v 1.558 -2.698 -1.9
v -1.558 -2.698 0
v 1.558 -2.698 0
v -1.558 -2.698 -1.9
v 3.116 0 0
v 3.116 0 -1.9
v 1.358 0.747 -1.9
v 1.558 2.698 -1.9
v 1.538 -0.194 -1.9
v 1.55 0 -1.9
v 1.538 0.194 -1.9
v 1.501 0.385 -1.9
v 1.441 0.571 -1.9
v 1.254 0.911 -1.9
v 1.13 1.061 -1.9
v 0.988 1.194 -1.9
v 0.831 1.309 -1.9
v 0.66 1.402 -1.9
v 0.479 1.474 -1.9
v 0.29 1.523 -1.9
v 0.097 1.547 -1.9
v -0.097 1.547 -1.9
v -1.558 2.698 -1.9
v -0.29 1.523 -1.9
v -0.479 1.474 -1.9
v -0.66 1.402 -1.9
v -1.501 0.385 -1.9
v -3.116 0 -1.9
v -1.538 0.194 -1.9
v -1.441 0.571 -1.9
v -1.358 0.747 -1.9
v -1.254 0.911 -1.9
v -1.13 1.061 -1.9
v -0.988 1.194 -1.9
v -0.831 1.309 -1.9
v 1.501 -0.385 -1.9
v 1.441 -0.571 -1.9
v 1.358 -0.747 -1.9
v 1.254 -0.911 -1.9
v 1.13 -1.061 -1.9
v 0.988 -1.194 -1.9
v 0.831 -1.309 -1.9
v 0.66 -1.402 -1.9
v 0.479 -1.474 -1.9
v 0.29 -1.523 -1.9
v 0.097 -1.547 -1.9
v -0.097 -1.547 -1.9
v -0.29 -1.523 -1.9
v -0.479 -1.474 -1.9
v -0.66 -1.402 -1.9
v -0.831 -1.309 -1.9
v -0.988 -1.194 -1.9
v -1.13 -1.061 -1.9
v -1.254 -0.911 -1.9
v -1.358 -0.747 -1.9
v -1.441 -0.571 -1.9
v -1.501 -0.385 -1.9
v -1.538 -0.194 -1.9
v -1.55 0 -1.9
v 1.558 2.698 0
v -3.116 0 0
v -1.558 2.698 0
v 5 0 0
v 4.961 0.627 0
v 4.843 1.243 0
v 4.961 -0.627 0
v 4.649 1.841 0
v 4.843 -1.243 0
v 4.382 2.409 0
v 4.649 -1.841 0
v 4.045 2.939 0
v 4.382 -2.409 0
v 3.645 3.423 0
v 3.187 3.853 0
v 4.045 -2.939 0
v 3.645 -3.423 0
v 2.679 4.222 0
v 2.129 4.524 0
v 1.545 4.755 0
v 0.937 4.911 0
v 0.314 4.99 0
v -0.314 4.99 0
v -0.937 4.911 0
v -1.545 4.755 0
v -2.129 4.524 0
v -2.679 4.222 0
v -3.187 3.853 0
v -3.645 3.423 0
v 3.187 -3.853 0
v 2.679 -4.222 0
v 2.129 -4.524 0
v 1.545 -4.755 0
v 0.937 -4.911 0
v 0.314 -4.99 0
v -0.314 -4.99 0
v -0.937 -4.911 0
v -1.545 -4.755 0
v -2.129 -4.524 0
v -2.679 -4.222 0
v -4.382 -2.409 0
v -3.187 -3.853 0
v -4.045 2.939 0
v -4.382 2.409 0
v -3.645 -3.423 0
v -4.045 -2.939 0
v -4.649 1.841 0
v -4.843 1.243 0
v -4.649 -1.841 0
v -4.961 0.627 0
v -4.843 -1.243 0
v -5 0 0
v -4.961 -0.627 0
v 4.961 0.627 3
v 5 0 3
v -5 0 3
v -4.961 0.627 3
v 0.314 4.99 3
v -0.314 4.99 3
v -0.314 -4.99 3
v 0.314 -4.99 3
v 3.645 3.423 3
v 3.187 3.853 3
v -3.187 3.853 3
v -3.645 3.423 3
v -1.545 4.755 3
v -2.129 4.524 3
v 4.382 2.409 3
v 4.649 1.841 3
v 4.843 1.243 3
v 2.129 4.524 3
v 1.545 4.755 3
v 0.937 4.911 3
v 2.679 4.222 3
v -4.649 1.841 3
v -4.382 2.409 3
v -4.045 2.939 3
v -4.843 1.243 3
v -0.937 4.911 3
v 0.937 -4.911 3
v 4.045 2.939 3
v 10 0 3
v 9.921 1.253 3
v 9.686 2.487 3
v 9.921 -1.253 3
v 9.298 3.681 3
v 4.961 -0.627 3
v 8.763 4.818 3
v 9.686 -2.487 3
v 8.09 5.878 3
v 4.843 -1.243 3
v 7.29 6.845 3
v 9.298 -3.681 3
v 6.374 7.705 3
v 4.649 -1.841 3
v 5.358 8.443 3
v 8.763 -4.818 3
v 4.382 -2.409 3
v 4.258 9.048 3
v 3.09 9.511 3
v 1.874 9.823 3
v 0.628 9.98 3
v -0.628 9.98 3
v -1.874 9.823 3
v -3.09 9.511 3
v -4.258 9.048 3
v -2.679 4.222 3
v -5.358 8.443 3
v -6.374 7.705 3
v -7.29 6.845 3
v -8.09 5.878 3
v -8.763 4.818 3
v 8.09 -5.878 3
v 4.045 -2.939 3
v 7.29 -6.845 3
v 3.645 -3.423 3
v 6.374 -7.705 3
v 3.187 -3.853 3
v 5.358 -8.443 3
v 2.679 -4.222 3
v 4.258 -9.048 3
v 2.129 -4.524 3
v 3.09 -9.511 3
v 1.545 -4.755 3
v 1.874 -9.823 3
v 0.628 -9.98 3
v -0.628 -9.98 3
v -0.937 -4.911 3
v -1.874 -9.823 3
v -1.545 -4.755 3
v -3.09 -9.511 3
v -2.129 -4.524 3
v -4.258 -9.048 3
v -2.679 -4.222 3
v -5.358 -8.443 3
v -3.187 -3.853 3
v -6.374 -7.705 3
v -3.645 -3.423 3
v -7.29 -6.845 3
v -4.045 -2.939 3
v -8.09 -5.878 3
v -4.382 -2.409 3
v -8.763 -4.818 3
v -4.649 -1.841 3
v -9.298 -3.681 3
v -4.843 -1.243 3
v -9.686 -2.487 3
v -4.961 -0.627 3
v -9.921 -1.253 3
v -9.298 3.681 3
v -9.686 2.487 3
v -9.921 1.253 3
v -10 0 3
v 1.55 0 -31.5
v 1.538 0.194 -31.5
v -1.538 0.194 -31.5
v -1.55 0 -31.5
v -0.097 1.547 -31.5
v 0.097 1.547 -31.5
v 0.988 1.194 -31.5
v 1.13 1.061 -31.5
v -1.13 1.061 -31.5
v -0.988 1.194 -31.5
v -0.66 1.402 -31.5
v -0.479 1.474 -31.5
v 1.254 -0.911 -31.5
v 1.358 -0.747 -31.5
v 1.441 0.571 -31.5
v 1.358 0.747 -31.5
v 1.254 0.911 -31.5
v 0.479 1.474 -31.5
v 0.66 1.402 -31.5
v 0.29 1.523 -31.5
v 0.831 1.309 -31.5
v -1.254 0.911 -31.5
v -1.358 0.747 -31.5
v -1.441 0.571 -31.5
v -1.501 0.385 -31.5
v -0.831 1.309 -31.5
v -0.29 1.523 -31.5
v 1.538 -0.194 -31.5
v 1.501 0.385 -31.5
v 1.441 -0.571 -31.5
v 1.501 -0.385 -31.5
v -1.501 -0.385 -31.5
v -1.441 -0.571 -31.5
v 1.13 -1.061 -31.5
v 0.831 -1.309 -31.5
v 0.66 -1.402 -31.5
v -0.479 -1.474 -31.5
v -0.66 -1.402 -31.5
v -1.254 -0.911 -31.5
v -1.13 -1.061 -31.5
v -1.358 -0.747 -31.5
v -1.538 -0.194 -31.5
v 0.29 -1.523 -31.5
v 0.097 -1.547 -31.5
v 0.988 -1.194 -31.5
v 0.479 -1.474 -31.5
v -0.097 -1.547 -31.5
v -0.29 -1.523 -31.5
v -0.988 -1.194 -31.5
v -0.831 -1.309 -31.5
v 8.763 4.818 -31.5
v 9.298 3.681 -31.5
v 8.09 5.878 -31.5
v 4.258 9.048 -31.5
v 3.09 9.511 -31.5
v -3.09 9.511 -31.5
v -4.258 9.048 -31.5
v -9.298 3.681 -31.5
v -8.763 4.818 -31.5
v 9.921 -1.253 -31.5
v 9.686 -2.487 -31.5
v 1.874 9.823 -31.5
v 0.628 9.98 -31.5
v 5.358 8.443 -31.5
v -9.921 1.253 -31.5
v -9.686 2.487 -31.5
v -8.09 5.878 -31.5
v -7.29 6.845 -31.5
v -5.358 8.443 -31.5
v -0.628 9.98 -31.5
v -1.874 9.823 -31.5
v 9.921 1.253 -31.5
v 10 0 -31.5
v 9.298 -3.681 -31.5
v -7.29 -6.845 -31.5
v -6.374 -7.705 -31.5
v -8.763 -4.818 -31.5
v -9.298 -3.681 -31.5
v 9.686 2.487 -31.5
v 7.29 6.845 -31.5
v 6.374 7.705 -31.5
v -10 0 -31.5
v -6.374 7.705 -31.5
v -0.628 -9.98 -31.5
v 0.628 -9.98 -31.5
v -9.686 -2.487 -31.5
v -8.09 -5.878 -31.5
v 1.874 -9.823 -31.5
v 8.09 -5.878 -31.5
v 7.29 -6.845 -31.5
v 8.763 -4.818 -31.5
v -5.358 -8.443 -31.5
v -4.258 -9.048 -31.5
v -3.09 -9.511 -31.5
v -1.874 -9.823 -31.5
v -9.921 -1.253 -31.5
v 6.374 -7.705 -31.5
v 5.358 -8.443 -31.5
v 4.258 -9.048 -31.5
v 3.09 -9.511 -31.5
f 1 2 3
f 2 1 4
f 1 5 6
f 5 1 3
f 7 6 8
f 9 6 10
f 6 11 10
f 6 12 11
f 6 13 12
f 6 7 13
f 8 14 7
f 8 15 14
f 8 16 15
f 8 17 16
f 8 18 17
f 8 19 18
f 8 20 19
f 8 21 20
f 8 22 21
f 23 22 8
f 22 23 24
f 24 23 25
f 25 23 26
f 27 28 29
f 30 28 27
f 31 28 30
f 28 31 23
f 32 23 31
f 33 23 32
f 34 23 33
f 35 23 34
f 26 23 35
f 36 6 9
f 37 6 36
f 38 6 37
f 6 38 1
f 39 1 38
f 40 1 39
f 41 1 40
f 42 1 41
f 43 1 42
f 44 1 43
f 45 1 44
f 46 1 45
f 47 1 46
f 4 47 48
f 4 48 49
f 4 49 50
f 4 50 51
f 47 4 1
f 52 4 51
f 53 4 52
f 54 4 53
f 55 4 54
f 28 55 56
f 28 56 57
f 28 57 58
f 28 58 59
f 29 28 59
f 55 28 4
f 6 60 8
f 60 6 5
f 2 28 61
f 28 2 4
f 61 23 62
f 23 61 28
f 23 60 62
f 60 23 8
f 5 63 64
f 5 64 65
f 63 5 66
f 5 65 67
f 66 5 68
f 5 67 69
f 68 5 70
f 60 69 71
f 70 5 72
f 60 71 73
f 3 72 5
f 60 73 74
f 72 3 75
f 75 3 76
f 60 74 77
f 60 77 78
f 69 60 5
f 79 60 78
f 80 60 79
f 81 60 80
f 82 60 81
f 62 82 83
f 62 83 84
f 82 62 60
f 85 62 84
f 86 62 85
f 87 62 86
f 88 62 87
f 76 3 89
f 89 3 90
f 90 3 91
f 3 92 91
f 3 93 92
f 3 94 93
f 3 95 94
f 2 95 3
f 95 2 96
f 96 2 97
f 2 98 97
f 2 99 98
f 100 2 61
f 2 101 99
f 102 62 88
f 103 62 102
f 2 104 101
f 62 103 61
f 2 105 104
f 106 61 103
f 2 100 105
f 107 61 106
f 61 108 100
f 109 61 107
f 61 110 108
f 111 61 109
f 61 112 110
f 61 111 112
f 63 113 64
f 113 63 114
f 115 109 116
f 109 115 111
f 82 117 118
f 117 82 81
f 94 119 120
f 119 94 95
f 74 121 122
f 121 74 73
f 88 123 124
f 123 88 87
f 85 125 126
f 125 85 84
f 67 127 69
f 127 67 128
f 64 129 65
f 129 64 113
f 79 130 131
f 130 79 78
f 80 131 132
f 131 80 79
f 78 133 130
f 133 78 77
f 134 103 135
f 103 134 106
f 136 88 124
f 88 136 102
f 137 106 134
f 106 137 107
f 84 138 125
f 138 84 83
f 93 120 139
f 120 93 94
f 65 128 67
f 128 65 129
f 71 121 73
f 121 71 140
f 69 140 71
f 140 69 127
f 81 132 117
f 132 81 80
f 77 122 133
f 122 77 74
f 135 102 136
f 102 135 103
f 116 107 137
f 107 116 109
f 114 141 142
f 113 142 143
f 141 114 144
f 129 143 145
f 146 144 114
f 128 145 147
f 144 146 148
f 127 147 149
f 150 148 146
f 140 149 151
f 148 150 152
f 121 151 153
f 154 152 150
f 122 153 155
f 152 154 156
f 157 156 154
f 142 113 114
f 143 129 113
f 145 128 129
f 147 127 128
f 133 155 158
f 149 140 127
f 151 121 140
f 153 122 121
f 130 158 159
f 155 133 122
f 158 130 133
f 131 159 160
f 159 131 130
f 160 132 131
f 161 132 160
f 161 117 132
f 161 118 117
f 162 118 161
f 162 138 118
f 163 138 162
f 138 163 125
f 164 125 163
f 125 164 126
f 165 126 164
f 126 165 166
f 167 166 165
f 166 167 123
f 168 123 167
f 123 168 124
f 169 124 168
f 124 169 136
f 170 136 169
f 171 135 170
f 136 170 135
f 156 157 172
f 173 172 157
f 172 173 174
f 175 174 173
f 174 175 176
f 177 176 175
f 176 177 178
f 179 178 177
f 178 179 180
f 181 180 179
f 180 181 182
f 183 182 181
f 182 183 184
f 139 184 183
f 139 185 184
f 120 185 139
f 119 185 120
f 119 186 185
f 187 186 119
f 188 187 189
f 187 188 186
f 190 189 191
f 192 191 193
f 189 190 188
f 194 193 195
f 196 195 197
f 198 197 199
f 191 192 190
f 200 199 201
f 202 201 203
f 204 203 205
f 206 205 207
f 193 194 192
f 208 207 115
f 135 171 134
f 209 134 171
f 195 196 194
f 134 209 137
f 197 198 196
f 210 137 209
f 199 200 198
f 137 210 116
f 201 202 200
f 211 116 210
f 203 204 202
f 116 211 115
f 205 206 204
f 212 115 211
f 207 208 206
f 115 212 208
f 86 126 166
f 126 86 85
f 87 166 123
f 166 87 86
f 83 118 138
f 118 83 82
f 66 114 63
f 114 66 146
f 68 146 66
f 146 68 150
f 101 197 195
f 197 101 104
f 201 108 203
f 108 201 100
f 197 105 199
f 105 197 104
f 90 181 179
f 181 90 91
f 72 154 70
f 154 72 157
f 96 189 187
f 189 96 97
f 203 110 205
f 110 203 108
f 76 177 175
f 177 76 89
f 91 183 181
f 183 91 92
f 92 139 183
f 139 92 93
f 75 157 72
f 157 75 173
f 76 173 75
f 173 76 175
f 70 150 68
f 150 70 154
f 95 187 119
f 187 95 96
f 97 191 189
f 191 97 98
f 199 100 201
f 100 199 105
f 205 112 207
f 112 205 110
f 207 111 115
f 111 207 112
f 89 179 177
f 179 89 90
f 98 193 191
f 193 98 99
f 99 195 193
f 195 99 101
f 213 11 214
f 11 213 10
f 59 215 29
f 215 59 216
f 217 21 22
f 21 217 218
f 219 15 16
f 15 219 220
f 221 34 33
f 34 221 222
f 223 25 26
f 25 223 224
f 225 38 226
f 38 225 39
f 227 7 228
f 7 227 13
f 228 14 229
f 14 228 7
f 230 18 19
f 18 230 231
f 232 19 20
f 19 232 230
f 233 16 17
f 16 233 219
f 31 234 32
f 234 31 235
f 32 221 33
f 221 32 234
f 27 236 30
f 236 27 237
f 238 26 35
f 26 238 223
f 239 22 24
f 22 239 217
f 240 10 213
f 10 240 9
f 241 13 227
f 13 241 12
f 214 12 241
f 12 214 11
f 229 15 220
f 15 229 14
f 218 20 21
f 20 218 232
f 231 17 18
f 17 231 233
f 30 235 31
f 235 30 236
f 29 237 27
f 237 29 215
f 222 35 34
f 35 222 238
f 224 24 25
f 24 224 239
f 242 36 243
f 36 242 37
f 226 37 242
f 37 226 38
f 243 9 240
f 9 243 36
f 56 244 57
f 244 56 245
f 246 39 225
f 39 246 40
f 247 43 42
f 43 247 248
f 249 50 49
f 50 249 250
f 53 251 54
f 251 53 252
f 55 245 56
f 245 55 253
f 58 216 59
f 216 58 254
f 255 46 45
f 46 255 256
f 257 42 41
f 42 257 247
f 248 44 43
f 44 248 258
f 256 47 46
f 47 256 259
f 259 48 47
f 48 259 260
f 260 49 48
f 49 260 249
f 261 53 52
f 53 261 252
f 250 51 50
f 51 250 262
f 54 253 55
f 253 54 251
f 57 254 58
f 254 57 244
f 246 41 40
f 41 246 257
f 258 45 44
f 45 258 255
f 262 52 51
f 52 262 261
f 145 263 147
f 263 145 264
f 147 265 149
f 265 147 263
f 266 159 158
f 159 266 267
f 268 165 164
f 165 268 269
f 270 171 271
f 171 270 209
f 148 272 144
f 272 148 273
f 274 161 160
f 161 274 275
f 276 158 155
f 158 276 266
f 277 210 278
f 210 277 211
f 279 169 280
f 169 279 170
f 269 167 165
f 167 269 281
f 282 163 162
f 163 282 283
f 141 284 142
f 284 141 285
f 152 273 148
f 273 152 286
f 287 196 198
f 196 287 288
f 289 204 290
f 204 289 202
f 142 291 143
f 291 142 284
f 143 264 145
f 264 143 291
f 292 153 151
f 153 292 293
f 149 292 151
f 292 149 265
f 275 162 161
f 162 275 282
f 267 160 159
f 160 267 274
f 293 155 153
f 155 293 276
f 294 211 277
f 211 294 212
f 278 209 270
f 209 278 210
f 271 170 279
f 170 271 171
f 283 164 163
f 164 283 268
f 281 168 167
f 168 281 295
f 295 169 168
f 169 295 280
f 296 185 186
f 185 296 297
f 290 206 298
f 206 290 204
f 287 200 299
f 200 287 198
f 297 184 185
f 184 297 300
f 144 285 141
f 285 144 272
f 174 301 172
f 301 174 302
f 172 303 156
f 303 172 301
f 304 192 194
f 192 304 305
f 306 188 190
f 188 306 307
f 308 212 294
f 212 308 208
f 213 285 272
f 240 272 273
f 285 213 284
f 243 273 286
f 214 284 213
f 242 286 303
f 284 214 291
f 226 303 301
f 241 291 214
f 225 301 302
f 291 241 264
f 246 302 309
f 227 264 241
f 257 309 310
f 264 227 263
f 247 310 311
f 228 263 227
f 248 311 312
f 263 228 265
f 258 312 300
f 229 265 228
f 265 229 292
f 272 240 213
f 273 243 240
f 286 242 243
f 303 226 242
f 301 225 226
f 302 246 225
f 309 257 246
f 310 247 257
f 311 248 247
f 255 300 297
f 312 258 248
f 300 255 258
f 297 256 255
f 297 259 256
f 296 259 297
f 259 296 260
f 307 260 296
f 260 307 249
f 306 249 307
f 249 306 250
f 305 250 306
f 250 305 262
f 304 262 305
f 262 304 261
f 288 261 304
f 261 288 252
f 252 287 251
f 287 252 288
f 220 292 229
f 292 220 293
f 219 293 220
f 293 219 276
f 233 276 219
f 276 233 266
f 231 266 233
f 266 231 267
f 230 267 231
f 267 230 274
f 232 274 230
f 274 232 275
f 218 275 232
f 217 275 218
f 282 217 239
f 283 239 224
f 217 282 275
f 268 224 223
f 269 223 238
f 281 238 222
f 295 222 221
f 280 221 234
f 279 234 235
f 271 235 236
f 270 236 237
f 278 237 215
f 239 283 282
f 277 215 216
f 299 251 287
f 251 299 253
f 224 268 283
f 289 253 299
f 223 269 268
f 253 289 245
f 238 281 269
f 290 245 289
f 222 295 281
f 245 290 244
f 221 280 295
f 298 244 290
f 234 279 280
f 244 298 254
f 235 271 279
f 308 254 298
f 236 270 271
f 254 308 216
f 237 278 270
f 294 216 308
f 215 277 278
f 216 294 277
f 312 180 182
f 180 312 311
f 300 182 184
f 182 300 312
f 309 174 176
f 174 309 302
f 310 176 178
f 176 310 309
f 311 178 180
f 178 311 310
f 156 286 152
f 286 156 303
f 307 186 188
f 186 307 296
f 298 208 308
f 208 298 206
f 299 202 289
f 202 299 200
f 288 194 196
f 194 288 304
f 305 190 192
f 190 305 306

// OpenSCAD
$fn = 50;

difference() {
	union() {
		translate(v = [0, 0, -31.5]) {
			cylinder(h = 34.5, r = 10.0);
		}
	}
	union() {
		translate(v = [0, 0, 0]) {
			rotate(a = [0, 0, 0]) {
				difference() {
					union() {
						translate(v = [0, 0, -1.9]) {
							linear_extrude(height = 1.9) {
								polygon(points = [[3.1158, 0.0], [1.5579000000000005, 2.698361953111554], [-1.5578999999999994, 2.6983619531115544], [-3.1158, 3.815754496783323e-16], [-1.5579000000000014, -2.6983619531115535], [1.557899999999998, -2.6983619531115552]]);
							}
						}
					}
					union();
				}
			}
		}
		#cylinder(h = 3, r = 5.0);
		#translate(v = [0, 0, -100.0]) {
			cylinder(h = 200, r = 1.55);
		}
	}
}
